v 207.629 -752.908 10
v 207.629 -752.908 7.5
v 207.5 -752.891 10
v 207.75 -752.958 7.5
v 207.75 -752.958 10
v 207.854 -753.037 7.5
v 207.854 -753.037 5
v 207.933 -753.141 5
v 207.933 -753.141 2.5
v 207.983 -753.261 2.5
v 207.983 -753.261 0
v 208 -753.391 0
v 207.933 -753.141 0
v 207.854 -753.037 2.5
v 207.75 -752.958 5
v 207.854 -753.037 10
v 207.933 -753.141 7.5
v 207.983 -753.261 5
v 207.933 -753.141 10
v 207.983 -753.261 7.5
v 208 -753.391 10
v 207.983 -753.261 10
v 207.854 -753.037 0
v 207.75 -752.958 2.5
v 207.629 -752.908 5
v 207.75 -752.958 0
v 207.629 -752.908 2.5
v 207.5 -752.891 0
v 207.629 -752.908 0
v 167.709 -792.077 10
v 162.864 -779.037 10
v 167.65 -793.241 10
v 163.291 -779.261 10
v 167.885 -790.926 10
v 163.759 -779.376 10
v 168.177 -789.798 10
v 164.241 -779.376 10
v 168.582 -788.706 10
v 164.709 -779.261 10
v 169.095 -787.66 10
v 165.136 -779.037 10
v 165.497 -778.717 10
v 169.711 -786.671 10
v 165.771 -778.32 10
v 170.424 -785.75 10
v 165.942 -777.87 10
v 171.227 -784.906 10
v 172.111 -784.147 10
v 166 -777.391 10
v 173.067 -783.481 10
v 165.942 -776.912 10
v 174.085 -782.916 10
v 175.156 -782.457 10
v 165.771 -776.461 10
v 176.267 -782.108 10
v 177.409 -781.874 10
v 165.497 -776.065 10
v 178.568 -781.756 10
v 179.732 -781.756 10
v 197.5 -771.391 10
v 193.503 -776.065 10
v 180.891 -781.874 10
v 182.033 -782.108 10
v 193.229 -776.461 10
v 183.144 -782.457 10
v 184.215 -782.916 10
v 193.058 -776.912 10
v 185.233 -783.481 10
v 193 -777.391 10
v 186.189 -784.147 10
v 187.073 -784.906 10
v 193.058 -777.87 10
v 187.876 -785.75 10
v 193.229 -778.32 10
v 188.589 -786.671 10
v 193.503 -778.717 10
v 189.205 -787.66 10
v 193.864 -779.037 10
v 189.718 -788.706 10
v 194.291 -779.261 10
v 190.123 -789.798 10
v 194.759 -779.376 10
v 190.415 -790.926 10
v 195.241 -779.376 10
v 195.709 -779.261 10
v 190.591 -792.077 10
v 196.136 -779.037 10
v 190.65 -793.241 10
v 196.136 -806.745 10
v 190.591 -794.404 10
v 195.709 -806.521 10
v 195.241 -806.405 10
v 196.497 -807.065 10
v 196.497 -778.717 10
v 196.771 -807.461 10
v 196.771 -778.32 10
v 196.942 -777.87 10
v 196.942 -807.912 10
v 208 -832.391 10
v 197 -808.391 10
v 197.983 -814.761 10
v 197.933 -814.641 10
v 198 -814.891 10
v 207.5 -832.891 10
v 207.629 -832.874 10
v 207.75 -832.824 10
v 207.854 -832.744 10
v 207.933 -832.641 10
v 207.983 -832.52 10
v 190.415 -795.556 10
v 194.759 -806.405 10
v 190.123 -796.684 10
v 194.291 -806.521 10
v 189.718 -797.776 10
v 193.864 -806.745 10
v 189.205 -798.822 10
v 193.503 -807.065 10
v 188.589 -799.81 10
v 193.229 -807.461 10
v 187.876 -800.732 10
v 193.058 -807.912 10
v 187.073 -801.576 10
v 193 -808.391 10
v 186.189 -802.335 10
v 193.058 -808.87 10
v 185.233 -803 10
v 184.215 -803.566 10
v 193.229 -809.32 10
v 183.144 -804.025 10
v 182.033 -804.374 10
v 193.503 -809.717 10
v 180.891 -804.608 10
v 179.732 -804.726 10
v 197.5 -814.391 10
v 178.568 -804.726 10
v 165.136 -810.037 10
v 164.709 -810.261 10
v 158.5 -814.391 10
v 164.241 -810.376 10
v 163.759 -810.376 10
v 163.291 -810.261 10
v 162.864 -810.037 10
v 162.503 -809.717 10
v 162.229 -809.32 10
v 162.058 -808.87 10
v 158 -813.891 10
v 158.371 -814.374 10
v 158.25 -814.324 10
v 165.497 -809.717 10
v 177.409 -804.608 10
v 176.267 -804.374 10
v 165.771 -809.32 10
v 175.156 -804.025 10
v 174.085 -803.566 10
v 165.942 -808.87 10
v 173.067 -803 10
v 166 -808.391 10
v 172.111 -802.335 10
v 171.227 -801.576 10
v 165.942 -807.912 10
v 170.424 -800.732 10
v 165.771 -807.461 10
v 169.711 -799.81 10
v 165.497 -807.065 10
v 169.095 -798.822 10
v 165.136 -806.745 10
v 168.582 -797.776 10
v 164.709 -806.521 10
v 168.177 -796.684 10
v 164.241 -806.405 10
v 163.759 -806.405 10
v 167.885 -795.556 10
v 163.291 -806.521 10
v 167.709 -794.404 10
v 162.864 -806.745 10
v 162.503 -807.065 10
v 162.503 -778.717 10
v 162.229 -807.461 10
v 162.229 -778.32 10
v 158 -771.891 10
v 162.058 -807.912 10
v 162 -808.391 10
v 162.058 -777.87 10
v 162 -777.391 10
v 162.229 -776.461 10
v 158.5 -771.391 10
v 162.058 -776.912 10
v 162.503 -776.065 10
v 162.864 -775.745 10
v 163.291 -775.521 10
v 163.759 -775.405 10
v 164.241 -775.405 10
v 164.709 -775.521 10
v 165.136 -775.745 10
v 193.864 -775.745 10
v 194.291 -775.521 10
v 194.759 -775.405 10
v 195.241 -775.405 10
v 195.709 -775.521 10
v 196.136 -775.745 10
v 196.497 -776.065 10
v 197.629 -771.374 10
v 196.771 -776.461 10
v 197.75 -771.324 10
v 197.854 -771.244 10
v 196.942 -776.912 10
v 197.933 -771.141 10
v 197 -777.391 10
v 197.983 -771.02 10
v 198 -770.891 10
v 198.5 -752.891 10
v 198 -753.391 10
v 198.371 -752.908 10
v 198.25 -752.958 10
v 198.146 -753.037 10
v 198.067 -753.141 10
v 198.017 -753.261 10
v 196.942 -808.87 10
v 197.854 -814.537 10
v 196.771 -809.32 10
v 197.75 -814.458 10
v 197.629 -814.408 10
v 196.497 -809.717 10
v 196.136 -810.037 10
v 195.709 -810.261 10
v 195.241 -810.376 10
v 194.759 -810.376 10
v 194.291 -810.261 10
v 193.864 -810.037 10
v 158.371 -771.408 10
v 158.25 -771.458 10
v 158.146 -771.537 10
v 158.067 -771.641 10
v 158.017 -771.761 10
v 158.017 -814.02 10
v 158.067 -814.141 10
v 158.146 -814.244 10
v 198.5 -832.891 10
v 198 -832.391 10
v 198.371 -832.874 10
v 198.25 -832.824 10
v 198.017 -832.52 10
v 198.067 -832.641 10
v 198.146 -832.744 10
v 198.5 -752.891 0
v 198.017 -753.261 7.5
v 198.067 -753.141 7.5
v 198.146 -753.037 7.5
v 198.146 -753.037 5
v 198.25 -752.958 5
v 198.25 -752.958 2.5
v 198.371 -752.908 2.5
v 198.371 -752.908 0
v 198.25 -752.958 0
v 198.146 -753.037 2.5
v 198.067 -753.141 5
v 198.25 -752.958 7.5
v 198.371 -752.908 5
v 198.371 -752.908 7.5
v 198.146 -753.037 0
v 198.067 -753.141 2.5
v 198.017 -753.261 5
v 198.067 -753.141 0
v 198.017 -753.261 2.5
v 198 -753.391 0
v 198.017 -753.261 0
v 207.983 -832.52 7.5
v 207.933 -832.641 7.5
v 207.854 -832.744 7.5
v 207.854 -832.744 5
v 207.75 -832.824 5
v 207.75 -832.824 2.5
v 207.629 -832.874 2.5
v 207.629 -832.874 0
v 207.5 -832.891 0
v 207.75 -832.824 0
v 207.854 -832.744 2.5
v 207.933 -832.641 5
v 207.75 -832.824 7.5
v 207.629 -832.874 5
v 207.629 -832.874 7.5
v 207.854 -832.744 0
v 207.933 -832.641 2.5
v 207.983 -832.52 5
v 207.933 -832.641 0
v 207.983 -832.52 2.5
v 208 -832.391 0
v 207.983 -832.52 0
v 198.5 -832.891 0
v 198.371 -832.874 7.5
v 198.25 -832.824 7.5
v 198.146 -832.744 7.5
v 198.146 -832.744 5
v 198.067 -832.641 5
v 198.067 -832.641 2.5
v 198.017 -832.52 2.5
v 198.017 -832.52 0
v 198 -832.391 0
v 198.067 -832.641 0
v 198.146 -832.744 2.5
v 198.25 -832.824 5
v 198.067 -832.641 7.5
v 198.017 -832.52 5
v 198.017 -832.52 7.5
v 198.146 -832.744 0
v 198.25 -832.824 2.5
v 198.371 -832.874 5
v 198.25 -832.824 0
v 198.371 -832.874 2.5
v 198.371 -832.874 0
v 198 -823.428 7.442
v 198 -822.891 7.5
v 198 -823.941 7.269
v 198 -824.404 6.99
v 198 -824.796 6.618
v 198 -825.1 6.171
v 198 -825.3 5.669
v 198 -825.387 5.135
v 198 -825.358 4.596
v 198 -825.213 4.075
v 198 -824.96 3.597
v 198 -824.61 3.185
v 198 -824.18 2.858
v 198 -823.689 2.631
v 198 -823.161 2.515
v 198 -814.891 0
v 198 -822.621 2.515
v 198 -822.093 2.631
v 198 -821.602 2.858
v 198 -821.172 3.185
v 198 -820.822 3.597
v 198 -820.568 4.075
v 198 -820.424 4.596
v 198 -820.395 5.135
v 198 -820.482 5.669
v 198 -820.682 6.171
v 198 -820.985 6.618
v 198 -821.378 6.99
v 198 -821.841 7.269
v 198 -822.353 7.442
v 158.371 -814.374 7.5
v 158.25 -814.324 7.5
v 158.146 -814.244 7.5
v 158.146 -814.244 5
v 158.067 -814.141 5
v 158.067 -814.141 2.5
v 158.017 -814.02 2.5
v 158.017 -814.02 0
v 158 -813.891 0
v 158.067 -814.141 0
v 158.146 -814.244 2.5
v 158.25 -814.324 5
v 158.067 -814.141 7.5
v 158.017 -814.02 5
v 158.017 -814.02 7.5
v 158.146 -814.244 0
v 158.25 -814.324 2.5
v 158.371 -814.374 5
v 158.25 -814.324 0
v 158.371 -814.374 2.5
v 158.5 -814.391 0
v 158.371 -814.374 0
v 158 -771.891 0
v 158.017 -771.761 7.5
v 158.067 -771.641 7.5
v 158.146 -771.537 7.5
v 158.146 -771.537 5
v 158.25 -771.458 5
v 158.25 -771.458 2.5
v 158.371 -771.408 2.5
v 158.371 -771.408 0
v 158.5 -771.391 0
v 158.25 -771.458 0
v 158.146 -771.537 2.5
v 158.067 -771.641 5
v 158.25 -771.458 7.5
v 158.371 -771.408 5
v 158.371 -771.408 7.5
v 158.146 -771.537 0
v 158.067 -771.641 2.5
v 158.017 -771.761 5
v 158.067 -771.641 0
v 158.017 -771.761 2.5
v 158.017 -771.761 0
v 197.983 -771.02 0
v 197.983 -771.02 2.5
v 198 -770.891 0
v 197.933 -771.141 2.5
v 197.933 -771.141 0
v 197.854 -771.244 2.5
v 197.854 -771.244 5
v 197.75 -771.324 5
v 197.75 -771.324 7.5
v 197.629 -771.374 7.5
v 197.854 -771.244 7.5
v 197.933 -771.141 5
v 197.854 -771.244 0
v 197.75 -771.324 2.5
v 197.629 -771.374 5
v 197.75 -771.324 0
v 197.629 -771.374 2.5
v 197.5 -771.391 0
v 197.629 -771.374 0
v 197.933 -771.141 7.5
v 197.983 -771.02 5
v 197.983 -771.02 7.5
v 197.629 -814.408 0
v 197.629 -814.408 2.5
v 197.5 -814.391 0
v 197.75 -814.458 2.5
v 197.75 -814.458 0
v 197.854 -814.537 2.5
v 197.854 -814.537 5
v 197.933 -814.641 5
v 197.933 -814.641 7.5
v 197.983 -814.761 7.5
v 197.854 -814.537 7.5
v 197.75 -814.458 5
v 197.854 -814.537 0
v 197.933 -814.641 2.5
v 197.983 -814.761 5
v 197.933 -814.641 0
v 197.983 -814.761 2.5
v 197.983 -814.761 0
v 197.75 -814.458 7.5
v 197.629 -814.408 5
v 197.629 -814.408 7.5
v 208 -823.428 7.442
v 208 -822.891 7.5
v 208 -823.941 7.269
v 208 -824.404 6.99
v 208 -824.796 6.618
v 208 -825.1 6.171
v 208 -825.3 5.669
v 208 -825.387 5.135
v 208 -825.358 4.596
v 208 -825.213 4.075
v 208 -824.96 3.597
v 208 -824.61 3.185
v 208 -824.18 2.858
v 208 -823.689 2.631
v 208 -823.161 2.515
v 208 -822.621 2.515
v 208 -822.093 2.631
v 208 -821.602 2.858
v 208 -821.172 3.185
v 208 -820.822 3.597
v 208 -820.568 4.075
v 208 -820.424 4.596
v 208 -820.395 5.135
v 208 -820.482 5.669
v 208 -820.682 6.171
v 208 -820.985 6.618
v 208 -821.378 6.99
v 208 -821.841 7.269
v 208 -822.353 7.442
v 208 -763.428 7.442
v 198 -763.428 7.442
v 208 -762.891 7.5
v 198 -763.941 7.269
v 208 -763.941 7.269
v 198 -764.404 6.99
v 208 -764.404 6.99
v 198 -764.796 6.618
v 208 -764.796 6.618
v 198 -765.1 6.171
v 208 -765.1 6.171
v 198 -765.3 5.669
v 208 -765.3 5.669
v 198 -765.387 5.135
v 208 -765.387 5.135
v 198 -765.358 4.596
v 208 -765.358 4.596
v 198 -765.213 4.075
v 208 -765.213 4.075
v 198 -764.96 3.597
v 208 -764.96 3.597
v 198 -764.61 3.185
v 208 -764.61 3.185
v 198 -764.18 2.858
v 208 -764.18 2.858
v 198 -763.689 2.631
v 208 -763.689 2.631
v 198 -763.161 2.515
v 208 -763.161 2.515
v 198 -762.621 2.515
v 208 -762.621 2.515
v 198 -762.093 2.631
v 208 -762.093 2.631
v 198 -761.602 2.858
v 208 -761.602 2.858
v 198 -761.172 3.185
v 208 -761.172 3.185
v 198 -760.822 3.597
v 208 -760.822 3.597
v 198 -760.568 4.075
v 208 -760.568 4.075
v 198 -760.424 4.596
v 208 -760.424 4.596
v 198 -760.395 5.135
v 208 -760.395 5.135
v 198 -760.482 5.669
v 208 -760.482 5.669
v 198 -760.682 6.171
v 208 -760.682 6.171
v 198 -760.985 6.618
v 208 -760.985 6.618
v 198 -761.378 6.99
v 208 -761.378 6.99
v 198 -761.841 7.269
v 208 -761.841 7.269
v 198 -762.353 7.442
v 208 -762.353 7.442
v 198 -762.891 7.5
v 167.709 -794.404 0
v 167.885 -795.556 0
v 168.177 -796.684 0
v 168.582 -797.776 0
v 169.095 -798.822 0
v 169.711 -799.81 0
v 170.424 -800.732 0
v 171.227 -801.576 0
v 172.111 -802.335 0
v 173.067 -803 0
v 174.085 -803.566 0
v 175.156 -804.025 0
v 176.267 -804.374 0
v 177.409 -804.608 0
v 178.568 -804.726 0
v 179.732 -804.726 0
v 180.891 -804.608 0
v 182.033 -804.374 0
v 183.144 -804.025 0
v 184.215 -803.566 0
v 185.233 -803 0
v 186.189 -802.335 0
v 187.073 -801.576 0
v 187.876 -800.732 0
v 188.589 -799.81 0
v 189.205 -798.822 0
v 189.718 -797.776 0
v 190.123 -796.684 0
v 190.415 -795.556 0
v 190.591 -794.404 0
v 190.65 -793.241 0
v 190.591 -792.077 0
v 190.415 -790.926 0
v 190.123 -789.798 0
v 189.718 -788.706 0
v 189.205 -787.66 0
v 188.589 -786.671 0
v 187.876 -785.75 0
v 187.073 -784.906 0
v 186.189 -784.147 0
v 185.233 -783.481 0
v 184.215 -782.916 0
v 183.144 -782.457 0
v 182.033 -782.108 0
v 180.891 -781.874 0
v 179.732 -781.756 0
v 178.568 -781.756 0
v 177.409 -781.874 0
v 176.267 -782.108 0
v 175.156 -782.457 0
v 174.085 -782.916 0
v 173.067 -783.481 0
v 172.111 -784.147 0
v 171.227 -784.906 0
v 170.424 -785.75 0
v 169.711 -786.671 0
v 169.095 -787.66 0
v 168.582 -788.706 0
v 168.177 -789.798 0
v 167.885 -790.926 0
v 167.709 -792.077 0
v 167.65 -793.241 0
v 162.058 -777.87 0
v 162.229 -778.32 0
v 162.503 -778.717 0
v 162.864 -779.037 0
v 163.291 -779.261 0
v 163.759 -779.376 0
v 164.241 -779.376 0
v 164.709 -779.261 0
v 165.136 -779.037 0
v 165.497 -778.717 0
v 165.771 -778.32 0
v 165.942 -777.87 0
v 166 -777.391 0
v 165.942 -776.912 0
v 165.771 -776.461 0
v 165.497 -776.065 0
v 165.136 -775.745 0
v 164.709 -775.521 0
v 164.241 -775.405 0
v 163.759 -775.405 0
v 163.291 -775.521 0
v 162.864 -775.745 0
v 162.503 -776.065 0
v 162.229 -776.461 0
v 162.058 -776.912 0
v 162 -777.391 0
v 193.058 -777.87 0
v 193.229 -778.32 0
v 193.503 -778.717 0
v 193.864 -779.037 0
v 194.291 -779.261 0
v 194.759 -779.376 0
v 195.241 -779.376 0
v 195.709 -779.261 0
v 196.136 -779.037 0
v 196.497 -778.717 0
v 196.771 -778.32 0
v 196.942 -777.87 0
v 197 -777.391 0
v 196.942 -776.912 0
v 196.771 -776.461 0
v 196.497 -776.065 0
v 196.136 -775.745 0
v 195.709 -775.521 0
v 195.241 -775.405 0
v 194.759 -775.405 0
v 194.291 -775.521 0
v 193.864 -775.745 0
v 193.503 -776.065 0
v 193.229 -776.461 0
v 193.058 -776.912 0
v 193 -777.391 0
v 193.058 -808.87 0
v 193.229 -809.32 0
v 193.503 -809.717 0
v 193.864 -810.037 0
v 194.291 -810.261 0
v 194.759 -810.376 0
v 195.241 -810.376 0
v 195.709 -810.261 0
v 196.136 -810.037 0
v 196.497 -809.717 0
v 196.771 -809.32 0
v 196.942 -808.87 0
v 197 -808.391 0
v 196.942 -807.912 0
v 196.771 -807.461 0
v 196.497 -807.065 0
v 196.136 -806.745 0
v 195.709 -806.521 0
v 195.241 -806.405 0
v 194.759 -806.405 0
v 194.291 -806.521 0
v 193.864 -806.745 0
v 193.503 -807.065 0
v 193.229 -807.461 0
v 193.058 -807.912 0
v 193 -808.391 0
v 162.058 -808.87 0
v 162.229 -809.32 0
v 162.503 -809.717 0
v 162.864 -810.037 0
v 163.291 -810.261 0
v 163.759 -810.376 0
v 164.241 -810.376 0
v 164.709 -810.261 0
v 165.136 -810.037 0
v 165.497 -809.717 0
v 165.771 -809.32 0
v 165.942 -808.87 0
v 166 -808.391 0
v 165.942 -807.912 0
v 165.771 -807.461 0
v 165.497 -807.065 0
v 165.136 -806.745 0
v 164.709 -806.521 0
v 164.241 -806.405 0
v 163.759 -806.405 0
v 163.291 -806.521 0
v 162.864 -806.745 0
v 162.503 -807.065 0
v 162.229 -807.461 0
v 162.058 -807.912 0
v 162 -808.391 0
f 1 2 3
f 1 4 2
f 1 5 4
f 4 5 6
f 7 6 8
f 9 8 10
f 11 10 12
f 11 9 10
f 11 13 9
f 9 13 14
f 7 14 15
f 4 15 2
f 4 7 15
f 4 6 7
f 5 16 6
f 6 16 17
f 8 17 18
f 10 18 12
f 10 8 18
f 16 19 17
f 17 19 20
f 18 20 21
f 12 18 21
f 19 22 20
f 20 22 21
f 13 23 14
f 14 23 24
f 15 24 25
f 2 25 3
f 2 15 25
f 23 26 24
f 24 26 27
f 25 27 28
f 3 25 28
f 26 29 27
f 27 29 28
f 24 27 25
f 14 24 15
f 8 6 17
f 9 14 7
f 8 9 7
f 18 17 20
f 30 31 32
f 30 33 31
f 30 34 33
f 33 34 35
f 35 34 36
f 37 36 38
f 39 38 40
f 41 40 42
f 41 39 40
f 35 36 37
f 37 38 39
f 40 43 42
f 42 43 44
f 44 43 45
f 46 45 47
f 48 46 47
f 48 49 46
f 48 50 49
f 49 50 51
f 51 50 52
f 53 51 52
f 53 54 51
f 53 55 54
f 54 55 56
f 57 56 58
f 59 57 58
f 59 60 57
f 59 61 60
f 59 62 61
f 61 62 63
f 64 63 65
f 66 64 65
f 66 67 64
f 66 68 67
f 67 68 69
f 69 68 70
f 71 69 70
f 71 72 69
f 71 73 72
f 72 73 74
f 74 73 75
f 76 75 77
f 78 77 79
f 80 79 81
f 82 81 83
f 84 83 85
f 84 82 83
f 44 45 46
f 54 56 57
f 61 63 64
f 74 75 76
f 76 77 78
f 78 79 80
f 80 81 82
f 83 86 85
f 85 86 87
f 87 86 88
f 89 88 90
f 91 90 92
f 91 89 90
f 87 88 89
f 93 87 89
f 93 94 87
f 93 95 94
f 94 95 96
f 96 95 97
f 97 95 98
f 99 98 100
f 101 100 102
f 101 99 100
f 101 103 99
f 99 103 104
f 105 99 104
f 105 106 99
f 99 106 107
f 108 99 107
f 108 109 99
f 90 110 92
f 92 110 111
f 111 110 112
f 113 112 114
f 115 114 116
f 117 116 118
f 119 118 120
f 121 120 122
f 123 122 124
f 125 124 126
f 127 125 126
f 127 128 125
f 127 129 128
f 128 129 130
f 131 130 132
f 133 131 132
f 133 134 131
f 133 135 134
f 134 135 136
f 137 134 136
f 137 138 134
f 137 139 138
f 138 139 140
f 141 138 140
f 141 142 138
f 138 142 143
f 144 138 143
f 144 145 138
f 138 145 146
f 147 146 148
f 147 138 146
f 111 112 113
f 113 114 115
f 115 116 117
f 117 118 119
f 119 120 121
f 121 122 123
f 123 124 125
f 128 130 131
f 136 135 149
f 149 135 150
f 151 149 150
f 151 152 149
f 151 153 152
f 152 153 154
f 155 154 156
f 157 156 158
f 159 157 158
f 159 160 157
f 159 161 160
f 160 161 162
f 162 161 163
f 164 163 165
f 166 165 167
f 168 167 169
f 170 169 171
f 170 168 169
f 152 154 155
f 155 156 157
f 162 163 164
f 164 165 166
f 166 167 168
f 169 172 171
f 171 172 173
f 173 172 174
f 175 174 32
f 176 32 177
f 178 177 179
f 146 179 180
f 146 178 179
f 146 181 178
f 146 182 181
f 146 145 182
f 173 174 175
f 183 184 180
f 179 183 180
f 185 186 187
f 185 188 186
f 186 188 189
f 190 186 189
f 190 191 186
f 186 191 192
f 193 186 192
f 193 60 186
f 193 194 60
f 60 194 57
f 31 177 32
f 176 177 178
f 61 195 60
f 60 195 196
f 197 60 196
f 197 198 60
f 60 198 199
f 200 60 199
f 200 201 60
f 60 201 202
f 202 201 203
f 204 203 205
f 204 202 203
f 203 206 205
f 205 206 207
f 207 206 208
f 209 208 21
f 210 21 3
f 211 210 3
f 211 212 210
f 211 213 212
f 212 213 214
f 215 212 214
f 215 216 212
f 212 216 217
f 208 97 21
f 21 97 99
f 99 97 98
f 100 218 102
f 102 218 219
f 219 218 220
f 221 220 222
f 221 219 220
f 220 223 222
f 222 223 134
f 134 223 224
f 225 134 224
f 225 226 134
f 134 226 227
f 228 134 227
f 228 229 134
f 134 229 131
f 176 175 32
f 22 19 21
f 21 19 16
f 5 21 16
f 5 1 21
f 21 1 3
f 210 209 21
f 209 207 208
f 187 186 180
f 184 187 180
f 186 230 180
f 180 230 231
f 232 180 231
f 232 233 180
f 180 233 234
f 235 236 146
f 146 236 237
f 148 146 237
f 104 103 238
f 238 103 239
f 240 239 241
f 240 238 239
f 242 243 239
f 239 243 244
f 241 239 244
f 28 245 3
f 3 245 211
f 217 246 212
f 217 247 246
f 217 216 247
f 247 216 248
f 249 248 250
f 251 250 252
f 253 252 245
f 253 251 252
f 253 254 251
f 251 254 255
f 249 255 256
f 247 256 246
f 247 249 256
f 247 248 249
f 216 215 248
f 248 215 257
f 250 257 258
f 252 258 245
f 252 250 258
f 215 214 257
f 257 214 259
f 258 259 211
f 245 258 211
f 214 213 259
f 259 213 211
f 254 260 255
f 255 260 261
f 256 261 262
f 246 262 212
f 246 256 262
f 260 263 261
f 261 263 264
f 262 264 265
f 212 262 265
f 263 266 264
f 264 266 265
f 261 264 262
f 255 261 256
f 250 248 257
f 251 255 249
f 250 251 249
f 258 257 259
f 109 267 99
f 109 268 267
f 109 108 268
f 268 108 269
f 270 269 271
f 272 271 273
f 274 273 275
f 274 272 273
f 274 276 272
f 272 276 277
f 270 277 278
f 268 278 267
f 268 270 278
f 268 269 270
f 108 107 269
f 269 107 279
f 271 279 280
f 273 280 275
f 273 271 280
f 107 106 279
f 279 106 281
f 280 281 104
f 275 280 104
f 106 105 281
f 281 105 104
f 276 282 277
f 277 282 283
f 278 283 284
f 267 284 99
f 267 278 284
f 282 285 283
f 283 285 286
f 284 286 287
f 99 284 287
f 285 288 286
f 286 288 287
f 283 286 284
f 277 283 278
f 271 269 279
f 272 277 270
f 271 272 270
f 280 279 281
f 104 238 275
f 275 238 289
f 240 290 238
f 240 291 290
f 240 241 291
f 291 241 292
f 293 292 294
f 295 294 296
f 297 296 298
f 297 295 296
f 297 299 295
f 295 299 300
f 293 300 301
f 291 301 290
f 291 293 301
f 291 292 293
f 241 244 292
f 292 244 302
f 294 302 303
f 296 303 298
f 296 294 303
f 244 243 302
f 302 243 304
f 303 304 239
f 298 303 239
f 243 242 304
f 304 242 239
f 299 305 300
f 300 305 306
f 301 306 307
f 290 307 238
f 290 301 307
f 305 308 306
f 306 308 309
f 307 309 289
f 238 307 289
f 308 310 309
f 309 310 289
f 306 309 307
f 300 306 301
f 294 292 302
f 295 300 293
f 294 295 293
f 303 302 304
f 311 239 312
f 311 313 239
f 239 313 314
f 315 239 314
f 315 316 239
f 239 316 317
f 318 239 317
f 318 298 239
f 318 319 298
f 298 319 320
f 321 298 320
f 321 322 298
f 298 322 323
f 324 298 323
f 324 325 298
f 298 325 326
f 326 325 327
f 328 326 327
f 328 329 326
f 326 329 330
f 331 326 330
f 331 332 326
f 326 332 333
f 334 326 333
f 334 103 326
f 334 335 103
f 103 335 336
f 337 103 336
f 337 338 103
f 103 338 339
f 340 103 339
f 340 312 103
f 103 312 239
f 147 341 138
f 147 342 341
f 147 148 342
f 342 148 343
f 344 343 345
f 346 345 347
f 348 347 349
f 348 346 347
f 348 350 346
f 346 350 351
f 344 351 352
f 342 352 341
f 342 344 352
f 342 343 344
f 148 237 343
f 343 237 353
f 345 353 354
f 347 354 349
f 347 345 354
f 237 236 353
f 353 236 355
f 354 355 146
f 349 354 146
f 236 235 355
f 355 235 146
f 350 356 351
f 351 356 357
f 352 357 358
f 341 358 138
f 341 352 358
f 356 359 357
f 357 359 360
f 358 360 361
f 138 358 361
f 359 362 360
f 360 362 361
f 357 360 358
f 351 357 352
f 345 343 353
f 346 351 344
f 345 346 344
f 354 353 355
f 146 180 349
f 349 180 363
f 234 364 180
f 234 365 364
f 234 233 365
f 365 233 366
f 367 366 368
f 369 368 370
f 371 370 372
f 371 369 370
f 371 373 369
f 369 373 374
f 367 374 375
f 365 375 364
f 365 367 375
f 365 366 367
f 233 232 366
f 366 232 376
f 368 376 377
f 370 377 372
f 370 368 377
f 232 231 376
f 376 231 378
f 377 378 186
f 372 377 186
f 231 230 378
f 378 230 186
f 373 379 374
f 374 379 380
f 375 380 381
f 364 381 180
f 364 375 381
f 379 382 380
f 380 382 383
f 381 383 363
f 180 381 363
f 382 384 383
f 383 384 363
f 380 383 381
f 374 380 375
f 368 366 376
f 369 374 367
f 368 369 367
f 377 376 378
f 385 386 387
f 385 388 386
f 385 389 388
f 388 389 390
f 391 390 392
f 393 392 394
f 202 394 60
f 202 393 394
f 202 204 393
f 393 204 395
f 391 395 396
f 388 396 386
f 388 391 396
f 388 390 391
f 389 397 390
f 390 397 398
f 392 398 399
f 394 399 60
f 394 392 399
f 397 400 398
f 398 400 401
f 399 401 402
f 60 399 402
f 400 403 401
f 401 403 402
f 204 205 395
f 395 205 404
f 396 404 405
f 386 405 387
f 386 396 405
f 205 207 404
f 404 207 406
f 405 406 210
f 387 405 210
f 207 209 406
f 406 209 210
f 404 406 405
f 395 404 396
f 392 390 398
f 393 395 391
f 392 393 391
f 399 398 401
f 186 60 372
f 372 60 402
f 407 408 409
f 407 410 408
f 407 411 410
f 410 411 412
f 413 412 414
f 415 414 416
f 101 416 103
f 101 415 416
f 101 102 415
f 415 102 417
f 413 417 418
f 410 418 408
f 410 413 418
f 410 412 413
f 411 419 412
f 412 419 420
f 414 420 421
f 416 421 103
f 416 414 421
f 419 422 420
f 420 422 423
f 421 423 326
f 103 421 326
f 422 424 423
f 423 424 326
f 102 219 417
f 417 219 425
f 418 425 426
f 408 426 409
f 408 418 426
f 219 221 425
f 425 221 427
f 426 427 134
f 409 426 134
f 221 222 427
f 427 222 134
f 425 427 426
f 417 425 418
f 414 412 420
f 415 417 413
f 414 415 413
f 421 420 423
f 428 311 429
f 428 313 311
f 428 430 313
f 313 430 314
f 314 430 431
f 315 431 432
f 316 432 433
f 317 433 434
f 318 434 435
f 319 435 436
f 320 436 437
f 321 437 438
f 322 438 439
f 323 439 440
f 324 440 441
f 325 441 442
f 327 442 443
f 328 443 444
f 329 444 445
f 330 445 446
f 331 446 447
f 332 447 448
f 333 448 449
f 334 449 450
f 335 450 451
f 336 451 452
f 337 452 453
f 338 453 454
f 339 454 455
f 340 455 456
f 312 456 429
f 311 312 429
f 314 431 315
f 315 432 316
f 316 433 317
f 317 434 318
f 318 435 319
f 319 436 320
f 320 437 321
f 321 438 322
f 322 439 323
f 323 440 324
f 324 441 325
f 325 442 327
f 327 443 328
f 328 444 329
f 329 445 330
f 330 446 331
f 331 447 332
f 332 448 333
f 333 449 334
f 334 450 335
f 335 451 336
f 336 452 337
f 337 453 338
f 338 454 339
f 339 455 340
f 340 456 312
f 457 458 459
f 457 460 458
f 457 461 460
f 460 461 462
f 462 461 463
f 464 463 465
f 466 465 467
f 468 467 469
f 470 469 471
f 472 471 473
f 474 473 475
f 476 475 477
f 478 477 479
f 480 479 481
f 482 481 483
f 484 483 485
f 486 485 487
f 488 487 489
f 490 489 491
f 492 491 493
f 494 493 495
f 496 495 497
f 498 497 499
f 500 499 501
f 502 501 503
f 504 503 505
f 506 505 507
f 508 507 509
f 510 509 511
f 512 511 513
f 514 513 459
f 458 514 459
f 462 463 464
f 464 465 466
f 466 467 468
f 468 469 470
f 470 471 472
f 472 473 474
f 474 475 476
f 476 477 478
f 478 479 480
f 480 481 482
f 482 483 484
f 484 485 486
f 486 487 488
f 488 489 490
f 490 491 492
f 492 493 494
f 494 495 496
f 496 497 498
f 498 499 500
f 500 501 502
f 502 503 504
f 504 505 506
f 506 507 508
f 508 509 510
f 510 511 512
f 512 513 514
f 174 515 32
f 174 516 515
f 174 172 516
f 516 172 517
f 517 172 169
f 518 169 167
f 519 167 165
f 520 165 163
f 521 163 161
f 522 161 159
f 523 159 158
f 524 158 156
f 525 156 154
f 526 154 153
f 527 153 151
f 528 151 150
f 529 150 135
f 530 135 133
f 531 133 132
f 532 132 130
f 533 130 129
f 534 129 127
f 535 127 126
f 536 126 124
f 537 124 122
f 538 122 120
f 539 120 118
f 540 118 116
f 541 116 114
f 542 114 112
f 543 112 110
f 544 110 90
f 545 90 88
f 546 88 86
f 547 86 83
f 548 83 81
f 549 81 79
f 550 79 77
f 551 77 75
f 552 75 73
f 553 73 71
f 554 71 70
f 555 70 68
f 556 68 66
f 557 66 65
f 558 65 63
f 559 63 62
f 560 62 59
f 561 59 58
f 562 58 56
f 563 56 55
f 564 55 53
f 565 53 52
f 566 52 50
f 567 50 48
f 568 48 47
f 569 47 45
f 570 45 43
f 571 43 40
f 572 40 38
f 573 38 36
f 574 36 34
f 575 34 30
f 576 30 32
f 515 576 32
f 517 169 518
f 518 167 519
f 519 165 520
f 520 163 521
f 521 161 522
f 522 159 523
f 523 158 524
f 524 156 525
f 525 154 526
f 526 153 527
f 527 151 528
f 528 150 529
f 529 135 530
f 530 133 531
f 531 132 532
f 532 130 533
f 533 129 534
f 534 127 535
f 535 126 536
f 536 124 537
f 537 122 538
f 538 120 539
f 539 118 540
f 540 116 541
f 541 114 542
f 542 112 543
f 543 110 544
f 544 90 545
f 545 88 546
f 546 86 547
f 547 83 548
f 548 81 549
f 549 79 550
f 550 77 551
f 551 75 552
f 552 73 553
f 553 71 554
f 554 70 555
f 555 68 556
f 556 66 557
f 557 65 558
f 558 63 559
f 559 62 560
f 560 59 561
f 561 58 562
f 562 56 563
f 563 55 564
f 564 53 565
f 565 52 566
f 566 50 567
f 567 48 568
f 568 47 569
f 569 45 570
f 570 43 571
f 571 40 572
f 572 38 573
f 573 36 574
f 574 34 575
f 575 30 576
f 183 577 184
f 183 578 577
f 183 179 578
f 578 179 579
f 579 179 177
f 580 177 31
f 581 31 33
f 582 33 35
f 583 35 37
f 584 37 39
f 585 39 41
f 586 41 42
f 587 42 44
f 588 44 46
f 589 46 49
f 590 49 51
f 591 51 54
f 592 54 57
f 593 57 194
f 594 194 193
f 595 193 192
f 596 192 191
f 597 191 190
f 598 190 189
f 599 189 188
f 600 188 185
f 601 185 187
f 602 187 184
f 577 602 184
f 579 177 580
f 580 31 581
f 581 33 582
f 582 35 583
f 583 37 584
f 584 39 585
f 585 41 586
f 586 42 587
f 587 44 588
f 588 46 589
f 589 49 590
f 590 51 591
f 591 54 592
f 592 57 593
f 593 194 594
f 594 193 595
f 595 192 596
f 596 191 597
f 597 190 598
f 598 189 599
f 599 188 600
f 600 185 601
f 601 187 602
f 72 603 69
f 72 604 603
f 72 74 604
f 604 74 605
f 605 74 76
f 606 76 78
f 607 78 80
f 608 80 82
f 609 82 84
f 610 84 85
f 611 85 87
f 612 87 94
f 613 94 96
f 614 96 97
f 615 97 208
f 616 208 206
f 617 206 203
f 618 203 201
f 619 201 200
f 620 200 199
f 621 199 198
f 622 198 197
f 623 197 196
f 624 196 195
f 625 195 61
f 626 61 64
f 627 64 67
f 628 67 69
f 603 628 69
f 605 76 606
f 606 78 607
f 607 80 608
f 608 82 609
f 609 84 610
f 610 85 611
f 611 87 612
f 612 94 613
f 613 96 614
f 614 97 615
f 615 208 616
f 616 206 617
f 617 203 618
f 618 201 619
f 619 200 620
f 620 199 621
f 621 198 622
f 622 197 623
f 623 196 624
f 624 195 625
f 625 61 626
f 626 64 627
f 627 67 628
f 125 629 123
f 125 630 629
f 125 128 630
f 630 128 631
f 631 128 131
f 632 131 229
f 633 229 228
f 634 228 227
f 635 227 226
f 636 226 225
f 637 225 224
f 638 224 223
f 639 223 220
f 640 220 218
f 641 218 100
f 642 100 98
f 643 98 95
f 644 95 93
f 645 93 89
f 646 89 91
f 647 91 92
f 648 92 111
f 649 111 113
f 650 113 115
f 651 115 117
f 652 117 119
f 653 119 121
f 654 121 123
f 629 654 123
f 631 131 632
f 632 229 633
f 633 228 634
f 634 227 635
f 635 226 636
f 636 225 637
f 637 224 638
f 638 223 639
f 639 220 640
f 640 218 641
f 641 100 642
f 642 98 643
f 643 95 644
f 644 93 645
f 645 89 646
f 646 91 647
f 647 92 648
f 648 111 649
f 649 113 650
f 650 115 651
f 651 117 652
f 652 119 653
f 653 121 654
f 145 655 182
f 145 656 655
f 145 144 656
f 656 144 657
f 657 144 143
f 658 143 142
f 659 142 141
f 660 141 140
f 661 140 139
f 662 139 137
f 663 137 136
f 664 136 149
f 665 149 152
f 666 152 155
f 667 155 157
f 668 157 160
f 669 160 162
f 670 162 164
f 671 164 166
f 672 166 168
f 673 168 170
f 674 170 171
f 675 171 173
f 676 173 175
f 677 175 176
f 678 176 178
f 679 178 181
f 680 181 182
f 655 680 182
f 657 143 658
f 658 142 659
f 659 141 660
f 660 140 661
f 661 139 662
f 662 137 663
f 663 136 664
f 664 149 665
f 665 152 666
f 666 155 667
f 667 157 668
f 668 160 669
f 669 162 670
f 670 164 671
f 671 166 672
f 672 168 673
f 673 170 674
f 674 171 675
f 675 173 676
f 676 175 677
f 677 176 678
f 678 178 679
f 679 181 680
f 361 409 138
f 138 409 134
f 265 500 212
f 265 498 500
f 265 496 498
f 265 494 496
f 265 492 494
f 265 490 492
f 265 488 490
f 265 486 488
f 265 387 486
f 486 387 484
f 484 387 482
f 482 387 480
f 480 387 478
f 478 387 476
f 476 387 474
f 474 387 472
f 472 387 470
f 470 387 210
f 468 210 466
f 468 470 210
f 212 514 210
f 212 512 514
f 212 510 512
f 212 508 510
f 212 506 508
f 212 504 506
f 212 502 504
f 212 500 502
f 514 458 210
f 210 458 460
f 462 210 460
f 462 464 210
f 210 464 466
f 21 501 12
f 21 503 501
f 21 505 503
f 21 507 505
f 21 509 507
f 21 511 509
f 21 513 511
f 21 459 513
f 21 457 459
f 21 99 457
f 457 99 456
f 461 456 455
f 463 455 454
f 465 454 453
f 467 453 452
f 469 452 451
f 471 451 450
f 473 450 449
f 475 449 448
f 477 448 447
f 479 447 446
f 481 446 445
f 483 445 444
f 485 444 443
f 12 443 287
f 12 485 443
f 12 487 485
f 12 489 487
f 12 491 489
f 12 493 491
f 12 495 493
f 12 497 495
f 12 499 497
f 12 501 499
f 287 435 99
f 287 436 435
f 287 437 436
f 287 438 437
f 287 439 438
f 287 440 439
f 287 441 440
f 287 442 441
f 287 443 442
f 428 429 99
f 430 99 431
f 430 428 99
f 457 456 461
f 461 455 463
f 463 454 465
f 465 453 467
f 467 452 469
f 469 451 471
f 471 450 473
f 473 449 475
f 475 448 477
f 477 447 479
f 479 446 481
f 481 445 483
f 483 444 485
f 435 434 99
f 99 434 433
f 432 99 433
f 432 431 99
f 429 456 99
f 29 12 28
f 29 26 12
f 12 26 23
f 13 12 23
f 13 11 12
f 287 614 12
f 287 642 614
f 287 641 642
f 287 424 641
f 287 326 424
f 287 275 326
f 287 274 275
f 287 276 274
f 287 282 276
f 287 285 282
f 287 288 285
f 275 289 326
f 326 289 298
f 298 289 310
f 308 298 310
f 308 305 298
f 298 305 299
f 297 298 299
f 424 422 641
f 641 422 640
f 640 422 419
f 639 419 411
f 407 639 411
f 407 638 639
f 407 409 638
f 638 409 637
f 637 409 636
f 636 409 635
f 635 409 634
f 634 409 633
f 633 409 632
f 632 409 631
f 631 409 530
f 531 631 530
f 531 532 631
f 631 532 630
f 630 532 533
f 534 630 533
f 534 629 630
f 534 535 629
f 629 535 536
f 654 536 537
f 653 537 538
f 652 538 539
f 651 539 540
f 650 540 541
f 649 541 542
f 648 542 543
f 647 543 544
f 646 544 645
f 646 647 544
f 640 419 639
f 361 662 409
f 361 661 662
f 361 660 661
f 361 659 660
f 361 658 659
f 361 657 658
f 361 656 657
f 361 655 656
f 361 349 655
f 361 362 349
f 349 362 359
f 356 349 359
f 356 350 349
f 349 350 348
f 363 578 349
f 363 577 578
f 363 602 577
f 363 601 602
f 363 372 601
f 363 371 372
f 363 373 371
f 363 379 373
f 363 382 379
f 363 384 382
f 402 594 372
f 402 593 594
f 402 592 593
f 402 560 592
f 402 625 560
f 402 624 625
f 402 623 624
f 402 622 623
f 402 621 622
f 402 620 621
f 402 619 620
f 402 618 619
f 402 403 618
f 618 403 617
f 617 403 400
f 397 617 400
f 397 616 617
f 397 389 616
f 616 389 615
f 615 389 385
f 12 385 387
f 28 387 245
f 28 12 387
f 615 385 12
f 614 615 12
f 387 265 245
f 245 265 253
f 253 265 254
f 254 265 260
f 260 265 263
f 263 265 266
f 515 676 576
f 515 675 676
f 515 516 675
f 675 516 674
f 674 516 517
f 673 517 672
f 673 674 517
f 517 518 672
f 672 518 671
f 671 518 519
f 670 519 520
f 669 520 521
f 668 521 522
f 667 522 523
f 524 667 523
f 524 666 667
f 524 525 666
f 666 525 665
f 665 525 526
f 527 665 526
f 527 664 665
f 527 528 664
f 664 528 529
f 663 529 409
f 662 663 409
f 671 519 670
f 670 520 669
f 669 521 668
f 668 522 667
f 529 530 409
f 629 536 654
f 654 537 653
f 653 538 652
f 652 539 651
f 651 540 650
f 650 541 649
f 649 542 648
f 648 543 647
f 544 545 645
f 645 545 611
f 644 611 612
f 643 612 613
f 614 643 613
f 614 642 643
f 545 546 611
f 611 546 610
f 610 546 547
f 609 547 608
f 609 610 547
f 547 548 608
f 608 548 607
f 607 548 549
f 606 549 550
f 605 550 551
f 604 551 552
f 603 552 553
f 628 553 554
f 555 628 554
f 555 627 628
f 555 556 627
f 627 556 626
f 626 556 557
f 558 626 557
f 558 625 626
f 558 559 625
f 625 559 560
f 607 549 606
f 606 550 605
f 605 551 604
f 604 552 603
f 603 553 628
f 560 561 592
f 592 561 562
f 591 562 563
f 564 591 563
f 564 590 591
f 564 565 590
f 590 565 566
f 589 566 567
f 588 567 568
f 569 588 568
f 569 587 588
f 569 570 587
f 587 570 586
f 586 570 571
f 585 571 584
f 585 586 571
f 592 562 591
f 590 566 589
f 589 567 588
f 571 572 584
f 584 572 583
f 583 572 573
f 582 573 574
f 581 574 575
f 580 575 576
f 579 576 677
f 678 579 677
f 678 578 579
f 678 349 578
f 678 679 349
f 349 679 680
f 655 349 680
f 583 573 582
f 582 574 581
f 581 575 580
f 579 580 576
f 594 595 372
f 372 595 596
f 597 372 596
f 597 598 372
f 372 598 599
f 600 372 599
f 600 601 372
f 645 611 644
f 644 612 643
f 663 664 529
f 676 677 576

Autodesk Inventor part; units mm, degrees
ref_plane "YZ Plane" through (0, 0, 0) normal (1, 0, 0) x (0, 1, 0)
ref_plane "XZ Plane" through (0, 0, 0) normal (0, 1, 0) x (-1, 0, 0)
ref_plane "Work Plane1" through (0, -862.1118, 0) normal (0, 0, 1) x (-1, 0, 0)
sketch "Sketch1" plane through (0, -862.1118, 0) normal (0, 0, 1) x (-1, 0, 0)
  circle A0 centre (-188, -18) radius 4 construction
  line L0 (-220, -478) -> (-220, 22) construction
  line L1 (-220, -478) -> (-208, -478) construction
  line L2 (-208, 22) -> (-208, -478) construction
  line L3 (-220, 22) -> (-208, 22) construction
  line L4 (-208, -29.2209) -> (-198, -29.2209)
  line L5 (-198, -109.2209) -> (-208, -109.2209)
  line L6 (-208, -109.2209) -> (-208, -29.2209)
  line L7 (-158, -47.7209) -> (-198, -47.7209)
  line L8 (-198, -90.7209) -> (-158, -90.7209)
  line L9 (-158, -90.7209) -> (-158, -47.7209)
  circle A1 centre (-179.15, -68.8709) radius 11.5
  circle A2 centre (-164, -53.7209) radius 2
  circle A3 centre (-195, -53.7209) radius 2
  circle A4 centre (-195, -84.7209) radius 2
  circle A5 centre (-164, -84.7209) radius 2
  line L10 (-195, -84.7209) -> (-195, -53.7209) construction
  line L11 (-195, -84.7209) -> (-164, -84.7209) construction
  line L12 (-198, -29.2209) -> (-198, -47.7209)
  line L13 (-198, -90.7209) -> (-198, -109.2209)
  point P0 (0, -862.1118)
  dimension "d0" = 10
  dimension "d1" = 80
  dimension "d3" = 43
  dimension "d4" = 18.5
  dimension "d5" = 18.5
  dimension "d6" = 23
  dimension "d7" = 4
  dimension "d8" = 4
  dimension "d9" = 4
  dimension "d10" = 4
  dimension "d11" = 31
  dimension "d12" = 31
  dimension "d13" = 31
  dimension "d14" = 31
  dimension "d15" = 6
  dimension "d18" = 6
  dimension "d19" = 6
  dimension "d20" = 6
  dimension "d21" = 90
  dimension "d25" = 21.15
  dimension "d26" = 21.15
  dimension "d27" = 90
  dimension "d28" = 90
  dimension "d29" = 18.5
  dimension "d41" = 40
  dimension "d42" = 40
extrude "Tykkelse" add sketch "Sketch1" along normal blind 10
sketch "Sketch2" plane through (198, -832.8909, 0) normal (-1, 0, 0) x (0, 0, 1)
  line L0 (0, 0) -> (10, 0) projected
  line L1 (10, 18.5) -> (10, 0) projected
  line L2 (0, 80) -> (0, 61.5) projected
  line L3 (0, 61.5) -> (10, 61.5) projected
  line L4 (10, 80) -> (10, 61.5) projected
  line L5 (0, 80) -> (10, 80) projected
  circle A0 centre (5, 70) radius 2.5
  circle A1 centre (5, 10) radius 2.5
  point P0 (0, 832.8909)
  dimension "d32" = 5
  dimension "d33" = 5
  dimension "d34" = 10
  dimension "d35" = 5
  dimension "d36" = 5
  dimension "d37" = 10
extrude "Befæstelseshuller" cut sketch "Sketch2" against normal up to surface (10 mm away) contours A0 | A1
fillet "Fillet1" radius 0.5 8 edges at (198, -814.3909, 5) (198, -771.3909, 5) (158, -771.3909, 5) (158, -814.3909, 5) (198, -832.8909, 5) (208, -832.8909, 5) (198, -752.8909, 5) (208, -752.8909, 5)
equation "\"d4\" = d5"
equation "\"d8\" = d7"
equation "\"d9\" = d7"
equation "\"d10\" = d7"
equation "\"d13\" = d11"
equation "\"d14\" = d12"
equation "\"d15\" = d20"
equation "\"d18\" = d15"
equation "\"d19\" = d18"
equation "\"d42\" = d41"
equation "\"d32\" = d33"
equation "\"d36\" = d35"
equation "\"d37\" = d34"
properties part number "Stepper Holder X&Y_3" material "Aluminum 6061"
